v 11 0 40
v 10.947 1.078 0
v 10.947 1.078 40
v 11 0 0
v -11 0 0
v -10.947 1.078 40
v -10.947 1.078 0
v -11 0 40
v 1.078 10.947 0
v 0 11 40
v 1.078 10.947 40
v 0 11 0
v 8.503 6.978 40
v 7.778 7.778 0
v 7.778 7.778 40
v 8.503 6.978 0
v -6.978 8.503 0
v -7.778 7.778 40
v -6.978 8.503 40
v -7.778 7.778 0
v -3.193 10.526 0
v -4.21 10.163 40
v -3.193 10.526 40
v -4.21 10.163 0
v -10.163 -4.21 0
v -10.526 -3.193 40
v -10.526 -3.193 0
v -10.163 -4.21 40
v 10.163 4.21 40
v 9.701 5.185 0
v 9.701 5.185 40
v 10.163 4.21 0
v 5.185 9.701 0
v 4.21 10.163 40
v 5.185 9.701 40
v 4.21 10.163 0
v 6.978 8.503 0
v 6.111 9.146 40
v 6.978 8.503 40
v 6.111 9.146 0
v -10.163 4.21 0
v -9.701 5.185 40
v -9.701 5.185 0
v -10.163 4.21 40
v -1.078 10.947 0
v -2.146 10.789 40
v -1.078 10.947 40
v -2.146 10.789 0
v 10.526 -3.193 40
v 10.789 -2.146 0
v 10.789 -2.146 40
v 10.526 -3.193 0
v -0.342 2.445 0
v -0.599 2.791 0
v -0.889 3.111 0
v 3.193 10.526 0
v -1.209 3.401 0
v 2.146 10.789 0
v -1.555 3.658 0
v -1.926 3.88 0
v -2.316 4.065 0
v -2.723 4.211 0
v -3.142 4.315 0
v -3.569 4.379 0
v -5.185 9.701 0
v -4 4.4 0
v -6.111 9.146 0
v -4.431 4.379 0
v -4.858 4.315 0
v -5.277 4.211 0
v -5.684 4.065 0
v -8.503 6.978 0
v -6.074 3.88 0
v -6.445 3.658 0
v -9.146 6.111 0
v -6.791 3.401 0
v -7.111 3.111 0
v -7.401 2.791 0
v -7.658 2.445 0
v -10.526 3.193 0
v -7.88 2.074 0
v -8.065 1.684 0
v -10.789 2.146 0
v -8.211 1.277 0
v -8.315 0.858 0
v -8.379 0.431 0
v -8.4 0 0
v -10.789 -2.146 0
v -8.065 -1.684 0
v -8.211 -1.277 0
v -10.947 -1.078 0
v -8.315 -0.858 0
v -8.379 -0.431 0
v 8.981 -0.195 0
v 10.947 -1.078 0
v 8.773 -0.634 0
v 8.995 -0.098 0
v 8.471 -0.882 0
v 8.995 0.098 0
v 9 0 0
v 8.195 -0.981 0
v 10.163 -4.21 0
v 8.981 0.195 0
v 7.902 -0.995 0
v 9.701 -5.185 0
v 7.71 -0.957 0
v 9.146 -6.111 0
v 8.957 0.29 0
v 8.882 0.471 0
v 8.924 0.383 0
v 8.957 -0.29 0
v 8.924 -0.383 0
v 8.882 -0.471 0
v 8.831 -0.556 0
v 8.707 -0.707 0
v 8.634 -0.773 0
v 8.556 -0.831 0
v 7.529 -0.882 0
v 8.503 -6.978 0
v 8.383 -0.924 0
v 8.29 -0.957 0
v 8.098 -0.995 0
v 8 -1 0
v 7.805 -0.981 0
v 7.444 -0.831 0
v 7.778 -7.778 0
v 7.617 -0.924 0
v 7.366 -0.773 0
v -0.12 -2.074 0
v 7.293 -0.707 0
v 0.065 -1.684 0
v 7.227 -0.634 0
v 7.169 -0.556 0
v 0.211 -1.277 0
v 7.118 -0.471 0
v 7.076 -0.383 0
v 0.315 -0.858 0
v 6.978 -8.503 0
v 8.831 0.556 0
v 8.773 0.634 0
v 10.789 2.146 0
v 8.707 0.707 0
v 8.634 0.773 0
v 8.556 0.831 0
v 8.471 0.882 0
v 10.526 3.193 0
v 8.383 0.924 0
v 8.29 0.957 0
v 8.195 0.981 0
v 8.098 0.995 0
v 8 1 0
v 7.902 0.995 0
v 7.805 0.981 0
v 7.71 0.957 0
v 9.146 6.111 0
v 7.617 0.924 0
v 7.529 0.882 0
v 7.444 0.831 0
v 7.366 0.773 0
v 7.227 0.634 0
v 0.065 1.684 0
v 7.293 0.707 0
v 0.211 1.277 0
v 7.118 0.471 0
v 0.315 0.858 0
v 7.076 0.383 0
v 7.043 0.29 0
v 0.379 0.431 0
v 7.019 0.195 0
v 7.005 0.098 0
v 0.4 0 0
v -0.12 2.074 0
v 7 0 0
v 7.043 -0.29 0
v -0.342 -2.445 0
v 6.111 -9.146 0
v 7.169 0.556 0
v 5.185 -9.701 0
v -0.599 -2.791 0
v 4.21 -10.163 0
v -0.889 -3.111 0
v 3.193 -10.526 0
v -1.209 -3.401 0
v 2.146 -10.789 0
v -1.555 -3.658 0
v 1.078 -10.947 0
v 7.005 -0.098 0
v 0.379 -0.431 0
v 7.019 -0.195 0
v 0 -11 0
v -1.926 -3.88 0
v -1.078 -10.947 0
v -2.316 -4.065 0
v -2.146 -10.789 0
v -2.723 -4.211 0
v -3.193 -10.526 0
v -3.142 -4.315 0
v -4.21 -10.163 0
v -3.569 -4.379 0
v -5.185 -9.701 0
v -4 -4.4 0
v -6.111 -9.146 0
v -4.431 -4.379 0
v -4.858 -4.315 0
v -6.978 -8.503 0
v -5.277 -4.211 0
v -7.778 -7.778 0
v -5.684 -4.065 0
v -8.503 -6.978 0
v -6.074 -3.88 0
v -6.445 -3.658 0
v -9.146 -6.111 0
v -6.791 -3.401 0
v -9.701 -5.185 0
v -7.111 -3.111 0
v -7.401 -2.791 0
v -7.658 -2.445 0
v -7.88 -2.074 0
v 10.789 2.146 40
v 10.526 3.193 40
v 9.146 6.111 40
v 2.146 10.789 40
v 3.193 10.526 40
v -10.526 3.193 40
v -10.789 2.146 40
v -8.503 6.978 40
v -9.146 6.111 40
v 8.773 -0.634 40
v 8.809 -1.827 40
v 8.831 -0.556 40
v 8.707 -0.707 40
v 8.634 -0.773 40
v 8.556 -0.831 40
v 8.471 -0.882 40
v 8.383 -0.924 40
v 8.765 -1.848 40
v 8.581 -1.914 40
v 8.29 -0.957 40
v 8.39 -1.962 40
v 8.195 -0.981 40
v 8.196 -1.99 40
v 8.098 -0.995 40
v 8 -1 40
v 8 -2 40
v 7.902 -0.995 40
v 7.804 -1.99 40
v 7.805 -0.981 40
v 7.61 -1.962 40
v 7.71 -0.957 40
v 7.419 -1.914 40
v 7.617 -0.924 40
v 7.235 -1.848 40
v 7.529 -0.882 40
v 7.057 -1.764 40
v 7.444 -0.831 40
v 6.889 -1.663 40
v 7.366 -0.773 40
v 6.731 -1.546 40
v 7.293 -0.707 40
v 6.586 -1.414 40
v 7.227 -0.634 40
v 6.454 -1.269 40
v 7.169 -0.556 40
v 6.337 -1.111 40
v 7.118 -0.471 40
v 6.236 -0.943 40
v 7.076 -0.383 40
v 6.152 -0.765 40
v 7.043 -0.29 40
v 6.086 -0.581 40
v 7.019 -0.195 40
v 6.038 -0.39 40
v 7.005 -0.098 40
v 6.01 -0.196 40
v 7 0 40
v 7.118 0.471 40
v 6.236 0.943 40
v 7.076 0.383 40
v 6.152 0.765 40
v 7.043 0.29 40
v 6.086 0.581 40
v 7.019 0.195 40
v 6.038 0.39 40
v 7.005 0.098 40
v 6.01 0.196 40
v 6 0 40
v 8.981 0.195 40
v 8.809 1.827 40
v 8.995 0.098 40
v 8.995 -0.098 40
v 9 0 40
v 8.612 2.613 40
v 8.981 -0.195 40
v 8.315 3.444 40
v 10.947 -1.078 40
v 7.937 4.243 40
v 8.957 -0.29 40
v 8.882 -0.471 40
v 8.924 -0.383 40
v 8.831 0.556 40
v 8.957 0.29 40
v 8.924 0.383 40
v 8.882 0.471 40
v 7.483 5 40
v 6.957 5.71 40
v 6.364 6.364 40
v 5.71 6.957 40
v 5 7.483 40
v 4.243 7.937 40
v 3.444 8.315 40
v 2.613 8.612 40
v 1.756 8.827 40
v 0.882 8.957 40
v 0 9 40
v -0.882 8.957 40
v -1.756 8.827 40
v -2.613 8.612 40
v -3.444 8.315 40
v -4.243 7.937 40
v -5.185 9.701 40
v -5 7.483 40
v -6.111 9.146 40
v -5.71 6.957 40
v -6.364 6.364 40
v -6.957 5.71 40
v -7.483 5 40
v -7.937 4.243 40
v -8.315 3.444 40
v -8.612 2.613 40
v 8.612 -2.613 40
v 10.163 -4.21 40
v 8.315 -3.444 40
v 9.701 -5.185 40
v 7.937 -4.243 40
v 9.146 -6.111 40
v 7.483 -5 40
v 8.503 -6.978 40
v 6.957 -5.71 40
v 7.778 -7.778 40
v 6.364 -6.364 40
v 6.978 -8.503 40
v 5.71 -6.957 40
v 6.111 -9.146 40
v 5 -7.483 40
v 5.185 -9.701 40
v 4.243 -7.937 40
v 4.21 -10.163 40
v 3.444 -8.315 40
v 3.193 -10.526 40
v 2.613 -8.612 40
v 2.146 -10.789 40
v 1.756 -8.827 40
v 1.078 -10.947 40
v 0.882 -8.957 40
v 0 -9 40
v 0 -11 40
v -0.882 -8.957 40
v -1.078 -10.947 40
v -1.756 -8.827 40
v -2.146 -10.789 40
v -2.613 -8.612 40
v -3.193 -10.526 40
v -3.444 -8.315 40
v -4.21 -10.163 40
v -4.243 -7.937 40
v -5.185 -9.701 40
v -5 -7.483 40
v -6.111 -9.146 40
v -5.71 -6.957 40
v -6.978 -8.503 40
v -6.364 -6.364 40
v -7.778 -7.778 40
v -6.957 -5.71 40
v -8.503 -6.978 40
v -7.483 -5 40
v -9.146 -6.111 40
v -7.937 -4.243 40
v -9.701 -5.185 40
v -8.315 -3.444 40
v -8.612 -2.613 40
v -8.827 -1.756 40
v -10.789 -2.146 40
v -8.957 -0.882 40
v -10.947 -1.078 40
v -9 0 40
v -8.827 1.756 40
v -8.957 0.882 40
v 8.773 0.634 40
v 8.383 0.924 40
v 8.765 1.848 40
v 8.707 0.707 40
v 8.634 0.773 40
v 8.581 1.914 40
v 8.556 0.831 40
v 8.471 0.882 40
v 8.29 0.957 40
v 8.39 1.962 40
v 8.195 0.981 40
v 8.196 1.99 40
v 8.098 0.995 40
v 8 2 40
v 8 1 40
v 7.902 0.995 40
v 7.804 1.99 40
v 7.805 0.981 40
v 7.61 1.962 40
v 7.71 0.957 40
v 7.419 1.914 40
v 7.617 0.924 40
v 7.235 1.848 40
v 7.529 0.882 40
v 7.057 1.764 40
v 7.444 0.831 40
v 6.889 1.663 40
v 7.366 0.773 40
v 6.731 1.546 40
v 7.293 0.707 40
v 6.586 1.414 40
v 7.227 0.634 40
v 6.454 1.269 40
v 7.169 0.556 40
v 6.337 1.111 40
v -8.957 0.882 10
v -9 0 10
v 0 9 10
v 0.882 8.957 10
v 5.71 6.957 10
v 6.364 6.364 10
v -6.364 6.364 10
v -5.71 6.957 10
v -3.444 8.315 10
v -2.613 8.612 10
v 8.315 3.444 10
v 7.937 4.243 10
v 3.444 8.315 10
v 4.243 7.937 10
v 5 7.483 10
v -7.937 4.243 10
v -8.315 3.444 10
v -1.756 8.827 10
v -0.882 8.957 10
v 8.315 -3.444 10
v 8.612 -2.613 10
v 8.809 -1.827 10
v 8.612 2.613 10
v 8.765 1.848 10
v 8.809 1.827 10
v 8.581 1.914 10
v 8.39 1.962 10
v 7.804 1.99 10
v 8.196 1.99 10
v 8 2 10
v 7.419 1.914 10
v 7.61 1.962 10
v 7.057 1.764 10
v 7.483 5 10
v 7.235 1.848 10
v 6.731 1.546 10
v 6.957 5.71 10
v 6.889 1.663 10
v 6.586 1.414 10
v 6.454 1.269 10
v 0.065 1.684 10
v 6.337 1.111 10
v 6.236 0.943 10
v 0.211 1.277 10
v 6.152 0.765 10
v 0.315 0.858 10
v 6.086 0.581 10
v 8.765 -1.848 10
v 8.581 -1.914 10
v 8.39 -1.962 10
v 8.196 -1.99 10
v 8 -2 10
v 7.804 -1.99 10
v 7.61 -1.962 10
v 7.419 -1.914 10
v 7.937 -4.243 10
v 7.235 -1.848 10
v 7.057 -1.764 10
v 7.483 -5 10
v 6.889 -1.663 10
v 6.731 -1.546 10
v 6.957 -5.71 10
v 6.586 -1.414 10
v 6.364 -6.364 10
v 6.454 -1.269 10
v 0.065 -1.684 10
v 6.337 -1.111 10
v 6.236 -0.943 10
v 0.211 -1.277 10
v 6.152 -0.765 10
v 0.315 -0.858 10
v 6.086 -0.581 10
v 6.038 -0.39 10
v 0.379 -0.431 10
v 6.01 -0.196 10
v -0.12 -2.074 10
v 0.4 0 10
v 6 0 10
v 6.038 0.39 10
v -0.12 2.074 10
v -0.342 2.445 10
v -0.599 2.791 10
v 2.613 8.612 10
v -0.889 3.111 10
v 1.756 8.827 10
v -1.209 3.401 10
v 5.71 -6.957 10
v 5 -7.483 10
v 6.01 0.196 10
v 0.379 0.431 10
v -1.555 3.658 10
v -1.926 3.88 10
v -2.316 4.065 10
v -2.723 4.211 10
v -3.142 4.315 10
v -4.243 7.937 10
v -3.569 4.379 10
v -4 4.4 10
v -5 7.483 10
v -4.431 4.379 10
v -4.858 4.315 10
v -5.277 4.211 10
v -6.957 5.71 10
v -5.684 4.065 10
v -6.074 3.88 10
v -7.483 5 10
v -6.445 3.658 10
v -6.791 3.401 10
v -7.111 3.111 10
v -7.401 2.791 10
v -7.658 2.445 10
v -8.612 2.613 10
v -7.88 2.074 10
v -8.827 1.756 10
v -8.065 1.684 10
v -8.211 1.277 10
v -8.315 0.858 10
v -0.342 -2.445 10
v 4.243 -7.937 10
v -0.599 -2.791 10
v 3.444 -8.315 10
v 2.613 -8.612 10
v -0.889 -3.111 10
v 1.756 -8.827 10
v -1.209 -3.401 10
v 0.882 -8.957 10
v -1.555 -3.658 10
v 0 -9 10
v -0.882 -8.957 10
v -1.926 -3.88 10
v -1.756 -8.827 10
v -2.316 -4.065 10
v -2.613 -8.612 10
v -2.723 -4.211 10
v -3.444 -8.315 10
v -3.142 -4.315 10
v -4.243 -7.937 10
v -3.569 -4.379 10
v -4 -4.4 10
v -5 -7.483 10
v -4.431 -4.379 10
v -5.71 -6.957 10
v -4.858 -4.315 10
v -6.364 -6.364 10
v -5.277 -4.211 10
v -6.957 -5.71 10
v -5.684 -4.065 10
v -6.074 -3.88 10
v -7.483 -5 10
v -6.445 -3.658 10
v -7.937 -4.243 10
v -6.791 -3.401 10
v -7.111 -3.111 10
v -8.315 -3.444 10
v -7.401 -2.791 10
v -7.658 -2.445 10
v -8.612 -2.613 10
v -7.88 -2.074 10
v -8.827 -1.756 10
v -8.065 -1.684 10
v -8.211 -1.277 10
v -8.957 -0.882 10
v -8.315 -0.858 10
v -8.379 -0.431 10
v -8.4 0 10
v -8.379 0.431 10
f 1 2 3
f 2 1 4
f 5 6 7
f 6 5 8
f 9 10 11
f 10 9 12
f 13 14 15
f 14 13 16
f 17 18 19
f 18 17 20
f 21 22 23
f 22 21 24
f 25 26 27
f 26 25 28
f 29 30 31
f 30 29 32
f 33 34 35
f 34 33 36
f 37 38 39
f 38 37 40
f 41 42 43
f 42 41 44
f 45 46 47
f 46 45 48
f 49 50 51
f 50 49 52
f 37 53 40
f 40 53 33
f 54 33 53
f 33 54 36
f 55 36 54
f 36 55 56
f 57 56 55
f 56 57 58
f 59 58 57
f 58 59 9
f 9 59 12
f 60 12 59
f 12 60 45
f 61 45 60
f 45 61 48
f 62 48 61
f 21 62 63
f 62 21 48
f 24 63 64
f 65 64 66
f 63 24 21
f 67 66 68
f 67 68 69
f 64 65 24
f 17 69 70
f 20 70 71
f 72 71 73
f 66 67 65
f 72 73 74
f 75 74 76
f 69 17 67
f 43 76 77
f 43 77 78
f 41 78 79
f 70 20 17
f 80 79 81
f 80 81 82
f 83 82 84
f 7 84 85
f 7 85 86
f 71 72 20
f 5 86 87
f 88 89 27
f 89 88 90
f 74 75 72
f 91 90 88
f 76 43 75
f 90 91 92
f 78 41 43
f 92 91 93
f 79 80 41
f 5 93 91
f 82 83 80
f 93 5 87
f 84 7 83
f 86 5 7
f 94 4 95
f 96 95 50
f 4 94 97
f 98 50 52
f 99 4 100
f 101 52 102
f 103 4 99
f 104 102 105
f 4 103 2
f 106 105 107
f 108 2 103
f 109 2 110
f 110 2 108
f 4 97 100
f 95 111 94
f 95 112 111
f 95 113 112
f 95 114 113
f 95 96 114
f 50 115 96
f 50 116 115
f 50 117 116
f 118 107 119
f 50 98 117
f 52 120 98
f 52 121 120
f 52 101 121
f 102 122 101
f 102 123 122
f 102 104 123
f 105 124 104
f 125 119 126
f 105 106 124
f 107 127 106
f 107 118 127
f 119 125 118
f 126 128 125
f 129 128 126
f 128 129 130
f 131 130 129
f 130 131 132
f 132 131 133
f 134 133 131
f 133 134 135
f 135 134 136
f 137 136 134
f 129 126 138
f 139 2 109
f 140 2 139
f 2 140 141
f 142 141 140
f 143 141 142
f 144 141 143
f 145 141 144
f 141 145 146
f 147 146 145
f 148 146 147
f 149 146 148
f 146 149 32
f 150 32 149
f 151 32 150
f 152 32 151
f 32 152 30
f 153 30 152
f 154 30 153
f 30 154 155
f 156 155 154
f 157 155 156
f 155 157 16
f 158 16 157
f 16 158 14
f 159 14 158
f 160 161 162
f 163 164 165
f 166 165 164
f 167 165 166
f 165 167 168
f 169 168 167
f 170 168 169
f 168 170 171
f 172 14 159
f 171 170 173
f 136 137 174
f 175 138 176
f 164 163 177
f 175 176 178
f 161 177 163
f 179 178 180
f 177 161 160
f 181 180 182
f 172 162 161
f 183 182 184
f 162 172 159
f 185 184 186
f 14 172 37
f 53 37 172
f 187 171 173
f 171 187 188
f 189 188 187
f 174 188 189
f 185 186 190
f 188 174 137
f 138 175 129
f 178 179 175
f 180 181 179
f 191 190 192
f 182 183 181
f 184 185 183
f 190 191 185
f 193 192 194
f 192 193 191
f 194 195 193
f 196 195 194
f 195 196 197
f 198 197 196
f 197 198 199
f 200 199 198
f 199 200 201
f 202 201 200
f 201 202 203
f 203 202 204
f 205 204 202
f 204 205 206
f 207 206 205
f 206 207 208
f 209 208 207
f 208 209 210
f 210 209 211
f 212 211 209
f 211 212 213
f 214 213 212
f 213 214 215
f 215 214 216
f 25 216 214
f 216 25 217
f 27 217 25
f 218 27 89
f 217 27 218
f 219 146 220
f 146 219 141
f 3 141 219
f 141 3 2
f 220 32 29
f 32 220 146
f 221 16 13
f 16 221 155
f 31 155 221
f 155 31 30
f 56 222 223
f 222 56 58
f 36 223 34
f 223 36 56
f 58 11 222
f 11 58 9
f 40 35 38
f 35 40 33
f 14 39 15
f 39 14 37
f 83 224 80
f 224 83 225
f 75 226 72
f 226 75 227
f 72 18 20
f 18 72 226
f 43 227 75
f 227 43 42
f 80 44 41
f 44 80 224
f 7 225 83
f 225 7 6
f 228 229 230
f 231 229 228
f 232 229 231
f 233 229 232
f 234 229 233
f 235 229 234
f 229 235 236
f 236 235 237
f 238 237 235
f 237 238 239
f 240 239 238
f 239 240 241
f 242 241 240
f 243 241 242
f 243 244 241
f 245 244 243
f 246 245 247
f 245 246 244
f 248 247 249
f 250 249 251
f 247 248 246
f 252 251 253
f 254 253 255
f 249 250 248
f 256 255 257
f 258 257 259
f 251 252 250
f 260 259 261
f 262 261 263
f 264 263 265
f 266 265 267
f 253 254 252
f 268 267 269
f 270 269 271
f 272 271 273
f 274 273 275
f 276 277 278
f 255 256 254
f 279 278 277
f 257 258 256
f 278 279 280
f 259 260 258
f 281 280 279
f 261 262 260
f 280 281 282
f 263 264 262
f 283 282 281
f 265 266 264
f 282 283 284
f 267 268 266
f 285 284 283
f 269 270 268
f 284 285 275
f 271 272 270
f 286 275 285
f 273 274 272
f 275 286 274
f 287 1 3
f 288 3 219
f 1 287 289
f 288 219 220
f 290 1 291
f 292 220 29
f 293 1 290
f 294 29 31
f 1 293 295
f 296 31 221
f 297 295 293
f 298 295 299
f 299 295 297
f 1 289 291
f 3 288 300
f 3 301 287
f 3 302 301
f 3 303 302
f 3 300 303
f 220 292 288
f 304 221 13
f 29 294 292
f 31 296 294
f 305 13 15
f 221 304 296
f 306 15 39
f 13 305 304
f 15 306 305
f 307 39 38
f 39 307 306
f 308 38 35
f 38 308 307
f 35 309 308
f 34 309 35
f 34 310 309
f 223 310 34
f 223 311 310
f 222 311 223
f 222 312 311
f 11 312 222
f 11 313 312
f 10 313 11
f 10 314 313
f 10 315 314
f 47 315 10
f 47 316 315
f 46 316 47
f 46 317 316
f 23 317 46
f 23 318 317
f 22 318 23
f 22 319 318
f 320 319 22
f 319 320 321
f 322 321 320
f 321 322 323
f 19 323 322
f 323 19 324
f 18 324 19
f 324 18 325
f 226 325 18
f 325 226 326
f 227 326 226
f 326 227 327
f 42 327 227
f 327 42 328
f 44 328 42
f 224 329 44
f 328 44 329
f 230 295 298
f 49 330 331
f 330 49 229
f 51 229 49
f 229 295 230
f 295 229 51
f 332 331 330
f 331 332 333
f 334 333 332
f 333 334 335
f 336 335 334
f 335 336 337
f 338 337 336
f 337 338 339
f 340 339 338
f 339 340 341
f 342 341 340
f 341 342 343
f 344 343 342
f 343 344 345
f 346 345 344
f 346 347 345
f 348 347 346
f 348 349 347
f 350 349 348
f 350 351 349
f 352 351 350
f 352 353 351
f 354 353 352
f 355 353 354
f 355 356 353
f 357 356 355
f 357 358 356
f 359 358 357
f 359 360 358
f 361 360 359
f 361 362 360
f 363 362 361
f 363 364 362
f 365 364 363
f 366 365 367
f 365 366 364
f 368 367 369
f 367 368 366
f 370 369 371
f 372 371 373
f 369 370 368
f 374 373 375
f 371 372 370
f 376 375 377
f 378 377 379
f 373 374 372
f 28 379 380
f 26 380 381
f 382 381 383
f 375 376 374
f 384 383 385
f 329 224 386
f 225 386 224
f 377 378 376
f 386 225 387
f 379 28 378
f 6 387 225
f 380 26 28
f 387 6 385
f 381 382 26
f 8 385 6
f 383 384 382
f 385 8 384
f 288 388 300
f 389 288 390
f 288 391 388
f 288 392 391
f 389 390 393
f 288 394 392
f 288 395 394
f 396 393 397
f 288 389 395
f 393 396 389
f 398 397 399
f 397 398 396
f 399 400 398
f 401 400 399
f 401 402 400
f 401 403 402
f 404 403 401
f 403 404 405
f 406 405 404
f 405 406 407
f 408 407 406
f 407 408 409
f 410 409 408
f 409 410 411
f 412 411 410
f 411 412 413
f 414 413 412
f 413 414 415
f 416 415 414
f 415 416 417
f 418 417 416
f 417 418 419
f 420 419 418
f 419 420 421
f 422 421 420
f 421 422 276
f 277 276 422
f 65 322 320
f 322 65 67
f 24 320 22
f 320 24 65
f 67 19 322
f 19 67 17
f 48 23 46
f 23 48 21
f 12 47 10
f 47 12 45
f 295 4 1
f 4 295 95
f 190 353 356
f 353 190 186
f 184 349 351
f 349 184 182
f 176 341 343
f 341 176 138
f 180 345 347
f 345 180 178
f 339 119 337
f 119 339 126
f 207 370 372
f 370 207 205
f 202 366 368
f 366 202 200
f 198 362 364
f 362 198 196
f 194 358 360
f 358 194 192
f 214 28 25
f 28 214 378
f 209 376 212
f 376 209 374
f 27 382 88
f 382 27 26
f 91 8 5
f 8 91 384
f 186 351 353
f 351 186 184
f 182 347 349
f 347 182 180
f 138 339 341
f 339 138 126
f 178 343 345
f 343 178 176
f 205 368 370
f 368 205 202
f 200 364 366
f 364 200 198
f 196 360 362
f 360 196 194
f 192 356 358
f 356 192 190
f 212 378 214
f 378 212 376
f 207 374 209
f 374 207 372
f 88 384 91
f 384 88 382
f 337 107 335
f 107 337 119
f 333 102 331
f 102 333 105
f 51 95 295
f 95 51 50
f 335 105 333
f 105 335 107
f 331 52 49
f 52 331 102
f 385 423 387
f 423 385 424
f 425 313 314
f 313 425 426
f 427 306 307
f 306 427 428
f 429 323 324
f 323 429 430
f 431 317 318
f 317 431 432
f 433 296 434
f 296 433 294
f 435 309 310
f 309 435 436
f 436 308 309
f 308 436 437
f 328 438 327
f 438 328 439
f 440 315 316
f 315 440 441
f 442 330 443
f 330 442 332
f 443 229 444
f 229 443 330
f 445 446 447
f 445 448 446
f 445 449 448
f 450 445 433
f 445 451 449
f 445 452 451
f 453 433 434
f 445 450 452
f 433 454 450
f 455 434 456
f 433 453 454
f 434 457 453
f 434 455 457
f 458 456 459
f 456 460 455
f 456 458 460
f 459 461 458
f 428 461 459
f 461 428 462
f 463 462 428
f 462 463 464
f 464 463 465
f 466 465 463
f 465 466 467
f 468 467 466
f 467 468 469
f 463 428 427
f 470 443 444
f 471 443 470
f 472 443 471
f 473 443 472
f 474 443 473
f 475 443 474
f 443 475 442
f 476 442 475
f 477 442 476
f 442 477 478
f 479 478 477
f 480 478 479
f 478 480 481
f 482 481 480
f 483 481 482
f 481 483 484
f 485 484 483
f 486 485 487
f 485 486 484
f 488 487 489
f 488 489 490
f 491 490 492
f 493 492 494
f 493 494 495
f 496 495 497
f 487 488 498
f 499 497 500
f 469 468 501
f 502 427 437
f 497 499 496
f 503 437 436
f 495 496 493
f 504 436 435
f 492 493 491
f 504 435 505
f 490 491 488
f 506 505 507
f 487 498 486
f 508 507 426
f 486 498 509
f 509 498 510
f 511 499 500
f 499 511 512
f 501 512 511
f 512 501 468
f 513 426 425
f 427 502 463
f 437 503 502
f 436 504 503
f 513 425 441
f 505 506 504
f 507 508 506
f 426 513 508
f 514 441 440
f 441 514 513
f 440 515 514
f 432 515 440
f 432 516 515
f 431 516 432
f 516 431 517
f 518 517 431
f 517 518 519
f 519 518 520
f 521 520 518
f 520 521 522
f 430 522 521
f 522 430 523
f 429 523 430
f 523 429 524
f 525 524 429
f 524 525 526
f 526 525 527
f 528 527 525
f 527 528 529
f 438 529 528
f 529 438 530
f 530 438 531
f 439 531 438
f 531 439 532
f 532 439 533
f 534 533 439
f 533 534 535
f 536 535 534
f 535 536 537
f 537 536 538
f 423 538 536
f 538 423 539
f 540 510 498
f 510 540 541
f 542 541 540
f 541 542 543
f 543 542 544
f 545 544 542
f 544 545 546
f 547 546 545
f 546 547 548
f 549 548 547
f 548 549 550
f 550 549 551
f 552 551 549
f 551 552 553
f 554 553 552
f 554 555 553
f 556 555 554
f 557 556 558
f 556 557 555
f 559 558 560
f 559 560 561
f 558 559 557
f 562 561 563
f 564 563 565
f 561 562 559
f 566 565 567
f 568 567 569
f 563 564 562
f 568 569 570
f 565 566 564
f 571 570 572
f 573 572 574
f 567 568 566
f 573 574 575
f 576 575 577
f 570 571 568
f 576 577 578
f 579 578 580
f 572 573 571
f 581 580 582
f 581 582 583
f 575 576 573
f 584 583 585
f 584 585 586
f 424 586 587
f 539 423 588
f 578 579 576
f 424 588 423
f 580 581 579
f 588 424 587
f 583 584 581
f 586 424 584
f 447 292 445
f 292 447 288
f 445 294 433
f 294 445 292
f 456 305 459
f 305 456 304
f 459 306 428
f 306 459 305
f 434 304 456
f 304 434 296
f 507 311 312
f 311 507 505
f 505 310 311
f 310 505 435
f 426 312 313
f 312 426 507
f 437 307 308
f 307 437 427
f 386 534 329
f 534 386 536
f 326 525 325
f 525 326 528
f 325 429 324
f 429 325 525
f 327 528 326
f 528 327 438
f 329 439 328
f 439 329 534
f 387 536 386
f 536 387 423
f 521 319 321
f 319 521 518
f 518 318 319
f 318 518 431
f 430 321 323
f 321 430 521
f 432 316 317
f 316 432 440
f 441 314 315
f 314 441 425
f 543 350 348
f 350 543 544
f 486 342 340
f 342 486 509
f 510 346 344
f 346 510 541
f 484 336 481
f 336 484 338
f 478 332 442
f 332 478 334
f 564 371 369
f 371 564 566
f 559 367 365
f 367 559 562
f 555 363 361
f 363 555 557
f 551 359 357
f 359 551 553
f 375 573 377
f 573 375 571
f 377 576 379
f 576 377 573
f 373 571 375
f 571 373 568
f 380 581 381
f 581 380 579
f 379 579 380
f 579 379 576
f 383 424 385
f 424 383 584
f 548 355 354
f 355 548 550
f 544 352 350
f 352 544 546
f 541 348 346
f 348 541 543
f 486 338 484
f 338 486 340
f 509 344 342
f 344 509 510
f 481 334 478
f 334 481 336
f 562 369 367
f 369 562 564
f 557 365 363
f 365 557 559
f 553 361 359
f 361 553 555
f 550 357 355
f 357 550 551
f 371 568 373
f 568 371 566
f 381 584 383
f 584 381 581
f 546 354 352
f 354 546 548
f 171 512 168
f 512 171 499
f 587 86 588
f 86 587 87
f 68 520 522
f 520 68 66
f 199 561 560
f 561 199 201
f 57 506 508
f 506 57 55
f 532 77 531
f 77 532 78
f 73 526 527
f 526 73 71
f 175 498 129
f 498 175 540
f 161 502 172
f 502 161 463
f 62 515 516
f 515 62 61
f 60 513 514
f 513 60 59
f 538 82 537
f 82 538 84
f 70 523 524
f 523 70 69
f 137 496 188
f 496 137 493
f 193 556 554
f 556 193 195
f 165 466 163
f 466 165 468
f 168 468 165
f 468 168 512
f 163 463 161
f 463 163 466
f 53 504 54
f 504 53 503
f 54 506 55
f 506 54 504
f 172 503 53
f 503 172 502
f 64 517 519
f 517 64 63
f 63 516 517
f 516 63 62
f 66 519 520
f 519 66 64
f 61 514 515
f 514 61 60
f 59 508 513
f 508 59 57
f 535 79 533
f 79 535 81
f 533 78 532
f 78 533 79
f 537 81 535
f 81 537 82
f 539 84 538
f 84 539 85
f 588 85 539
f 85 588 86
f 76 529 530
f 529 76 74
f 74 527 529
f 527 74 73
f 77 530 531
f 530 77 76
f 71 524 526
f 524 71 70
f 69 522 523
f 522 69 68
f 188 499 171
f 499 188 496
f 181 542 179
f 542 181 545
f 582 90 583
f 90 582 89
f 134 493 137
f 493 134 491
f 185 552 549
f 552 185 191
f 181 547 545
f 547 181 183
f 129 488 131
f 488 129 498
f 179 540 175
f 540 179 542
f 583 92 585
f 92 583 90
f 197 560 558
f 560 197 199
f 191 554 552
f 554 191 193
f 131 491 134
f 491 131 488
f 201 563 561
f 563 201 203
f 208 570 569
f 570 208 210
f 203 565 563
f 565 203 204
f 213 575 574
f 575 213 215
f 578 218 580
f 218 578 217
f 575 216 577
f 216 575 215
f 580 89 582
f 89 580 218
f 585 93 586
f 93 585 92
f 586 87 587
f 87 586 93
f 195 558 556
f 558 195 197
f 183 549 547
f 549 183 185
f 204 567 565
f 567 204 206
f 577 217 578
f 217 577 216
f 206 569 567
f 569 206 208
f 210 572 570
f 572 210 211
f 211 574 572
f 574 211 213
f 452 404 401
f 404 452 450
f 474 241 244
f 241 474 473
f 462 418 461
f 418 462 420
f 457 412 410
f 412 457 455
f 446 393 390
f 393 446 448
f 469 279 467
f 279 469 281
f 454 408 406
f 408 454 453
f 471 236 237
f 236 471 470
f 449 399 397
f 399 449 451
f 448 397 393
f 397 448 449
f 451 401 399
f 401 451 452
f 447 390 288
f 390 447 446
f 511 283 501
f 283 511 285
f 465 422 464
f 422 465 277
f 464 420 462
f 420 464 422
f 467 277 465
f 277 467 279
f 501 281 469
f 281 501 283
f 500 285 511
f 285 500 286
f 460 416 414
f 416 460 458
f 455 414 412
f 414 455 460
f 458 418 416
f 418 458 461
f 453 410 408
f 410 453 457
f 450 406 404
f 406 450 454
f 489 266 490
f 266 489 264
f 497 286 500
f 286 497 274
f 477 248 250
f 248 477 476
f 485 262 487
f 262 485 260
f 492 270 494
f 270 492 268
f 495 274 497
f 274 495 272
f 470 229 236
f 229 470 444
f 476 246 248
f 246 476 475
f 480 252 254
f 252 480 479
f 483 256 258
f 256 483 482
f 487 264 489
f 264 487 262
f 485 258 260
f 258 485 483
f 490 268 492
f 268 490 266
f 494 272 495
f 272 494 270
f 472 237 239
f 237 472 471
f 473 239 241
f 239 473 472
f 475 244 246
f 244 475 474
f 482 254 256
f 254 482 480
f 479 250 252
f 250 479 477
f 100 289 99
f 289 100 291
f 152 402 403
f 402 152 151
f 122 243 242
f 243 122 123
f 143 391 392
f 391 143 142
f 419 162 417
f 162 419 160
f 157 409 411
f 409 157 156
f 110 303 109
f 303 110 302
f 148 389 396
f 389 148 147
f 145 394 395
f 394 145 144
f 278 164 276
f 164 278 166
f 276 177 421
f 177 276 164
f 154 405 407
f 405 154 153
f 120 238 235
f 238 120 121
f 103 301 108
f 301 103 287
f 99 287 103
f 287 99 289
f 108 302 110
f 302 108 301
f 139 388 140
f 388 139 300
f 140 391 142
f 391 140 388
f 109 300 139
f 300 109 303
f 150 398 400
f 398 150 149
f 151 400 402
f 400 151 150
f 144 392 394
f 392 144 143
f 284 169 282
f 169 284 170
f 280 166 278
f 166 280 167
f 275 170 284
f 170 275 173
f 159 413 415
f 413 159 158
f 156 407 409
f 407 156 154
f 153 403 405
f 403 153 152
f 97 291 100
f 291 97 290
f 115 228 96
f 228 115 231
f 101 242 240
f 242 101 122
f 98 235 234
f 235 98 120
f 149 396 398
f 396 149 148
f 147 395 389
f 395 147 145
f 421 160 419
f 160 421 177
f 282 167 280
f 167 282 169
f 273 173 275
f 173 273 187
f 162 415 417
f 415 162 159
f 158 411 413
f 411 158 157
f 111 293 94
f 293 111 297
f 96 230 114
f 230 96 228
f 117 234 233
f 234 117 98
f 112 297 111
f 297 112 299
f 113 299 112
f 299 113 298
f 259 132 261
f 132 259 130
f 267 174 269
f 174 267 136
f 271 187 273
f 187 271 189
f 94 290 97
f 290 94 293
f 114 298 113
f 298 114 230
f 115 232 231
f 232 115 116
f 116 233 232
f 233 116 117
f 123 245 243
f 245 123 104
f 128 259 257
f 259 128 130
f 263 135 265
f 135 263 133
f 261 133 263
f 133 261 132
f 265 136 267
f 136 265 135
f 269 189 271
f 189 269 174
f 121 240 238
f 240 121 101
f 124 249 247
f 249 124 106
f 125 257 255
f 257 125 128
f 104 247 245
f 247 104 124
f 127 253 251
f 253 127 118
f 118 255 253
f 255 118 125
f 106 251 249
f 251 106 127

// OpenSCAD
// The main diameter of the plug
Plug_Diameter = 22;

// The length of the plug
Plug_Length = 40;

// Wall strength for the hollow part of the plug
Plug_Wall_Strength = 2;

// Length of the hollow part of the plug
Plug_Hollow_Length = 30;

// Tap hole diameter for the pressure fitting
Tap_Diameter = 8.8;

// Air outlet hole diameter
Air_Hole_Diameter = 2;

// Mesh curve quality
$fn = 64;

/* [Hidden] */
Plug_Solid_Length = Plug_Length - Plug_Hollow_Length;
Air_Hole_Offset = Plug_Diameter/2 - 1.5*Air_Hole_Diameter;

f = 0.01;
df = 2*f;

module plug() {
    difference() {
        union() {
            difference() {
                cylinder(d = Plug_Diameter, h = Plug_Length);
                translate([0, 0, Plug_Solid_Length])
                    cylinder(d = Plug_Diameter - 2 * Plug_Wall_Strength, h = Plug_Hollow_Length + f);
                translate([-4, 0, -f])
                    cylinder(d = Tap_Diameter, h = Plug_Solid_Length + df);        
            }    
            translate([Air_Hole_Offset, 0, 0])
                cylinder(d = Air_Hole_Diameter * 2, h = Plug_Length);
        }
        translate([Air_Hole_Offset, 0, -f])
            cylinder(d = Air_Hole_Diameter, h = Plug_Length + df);
    }
}

plug();
